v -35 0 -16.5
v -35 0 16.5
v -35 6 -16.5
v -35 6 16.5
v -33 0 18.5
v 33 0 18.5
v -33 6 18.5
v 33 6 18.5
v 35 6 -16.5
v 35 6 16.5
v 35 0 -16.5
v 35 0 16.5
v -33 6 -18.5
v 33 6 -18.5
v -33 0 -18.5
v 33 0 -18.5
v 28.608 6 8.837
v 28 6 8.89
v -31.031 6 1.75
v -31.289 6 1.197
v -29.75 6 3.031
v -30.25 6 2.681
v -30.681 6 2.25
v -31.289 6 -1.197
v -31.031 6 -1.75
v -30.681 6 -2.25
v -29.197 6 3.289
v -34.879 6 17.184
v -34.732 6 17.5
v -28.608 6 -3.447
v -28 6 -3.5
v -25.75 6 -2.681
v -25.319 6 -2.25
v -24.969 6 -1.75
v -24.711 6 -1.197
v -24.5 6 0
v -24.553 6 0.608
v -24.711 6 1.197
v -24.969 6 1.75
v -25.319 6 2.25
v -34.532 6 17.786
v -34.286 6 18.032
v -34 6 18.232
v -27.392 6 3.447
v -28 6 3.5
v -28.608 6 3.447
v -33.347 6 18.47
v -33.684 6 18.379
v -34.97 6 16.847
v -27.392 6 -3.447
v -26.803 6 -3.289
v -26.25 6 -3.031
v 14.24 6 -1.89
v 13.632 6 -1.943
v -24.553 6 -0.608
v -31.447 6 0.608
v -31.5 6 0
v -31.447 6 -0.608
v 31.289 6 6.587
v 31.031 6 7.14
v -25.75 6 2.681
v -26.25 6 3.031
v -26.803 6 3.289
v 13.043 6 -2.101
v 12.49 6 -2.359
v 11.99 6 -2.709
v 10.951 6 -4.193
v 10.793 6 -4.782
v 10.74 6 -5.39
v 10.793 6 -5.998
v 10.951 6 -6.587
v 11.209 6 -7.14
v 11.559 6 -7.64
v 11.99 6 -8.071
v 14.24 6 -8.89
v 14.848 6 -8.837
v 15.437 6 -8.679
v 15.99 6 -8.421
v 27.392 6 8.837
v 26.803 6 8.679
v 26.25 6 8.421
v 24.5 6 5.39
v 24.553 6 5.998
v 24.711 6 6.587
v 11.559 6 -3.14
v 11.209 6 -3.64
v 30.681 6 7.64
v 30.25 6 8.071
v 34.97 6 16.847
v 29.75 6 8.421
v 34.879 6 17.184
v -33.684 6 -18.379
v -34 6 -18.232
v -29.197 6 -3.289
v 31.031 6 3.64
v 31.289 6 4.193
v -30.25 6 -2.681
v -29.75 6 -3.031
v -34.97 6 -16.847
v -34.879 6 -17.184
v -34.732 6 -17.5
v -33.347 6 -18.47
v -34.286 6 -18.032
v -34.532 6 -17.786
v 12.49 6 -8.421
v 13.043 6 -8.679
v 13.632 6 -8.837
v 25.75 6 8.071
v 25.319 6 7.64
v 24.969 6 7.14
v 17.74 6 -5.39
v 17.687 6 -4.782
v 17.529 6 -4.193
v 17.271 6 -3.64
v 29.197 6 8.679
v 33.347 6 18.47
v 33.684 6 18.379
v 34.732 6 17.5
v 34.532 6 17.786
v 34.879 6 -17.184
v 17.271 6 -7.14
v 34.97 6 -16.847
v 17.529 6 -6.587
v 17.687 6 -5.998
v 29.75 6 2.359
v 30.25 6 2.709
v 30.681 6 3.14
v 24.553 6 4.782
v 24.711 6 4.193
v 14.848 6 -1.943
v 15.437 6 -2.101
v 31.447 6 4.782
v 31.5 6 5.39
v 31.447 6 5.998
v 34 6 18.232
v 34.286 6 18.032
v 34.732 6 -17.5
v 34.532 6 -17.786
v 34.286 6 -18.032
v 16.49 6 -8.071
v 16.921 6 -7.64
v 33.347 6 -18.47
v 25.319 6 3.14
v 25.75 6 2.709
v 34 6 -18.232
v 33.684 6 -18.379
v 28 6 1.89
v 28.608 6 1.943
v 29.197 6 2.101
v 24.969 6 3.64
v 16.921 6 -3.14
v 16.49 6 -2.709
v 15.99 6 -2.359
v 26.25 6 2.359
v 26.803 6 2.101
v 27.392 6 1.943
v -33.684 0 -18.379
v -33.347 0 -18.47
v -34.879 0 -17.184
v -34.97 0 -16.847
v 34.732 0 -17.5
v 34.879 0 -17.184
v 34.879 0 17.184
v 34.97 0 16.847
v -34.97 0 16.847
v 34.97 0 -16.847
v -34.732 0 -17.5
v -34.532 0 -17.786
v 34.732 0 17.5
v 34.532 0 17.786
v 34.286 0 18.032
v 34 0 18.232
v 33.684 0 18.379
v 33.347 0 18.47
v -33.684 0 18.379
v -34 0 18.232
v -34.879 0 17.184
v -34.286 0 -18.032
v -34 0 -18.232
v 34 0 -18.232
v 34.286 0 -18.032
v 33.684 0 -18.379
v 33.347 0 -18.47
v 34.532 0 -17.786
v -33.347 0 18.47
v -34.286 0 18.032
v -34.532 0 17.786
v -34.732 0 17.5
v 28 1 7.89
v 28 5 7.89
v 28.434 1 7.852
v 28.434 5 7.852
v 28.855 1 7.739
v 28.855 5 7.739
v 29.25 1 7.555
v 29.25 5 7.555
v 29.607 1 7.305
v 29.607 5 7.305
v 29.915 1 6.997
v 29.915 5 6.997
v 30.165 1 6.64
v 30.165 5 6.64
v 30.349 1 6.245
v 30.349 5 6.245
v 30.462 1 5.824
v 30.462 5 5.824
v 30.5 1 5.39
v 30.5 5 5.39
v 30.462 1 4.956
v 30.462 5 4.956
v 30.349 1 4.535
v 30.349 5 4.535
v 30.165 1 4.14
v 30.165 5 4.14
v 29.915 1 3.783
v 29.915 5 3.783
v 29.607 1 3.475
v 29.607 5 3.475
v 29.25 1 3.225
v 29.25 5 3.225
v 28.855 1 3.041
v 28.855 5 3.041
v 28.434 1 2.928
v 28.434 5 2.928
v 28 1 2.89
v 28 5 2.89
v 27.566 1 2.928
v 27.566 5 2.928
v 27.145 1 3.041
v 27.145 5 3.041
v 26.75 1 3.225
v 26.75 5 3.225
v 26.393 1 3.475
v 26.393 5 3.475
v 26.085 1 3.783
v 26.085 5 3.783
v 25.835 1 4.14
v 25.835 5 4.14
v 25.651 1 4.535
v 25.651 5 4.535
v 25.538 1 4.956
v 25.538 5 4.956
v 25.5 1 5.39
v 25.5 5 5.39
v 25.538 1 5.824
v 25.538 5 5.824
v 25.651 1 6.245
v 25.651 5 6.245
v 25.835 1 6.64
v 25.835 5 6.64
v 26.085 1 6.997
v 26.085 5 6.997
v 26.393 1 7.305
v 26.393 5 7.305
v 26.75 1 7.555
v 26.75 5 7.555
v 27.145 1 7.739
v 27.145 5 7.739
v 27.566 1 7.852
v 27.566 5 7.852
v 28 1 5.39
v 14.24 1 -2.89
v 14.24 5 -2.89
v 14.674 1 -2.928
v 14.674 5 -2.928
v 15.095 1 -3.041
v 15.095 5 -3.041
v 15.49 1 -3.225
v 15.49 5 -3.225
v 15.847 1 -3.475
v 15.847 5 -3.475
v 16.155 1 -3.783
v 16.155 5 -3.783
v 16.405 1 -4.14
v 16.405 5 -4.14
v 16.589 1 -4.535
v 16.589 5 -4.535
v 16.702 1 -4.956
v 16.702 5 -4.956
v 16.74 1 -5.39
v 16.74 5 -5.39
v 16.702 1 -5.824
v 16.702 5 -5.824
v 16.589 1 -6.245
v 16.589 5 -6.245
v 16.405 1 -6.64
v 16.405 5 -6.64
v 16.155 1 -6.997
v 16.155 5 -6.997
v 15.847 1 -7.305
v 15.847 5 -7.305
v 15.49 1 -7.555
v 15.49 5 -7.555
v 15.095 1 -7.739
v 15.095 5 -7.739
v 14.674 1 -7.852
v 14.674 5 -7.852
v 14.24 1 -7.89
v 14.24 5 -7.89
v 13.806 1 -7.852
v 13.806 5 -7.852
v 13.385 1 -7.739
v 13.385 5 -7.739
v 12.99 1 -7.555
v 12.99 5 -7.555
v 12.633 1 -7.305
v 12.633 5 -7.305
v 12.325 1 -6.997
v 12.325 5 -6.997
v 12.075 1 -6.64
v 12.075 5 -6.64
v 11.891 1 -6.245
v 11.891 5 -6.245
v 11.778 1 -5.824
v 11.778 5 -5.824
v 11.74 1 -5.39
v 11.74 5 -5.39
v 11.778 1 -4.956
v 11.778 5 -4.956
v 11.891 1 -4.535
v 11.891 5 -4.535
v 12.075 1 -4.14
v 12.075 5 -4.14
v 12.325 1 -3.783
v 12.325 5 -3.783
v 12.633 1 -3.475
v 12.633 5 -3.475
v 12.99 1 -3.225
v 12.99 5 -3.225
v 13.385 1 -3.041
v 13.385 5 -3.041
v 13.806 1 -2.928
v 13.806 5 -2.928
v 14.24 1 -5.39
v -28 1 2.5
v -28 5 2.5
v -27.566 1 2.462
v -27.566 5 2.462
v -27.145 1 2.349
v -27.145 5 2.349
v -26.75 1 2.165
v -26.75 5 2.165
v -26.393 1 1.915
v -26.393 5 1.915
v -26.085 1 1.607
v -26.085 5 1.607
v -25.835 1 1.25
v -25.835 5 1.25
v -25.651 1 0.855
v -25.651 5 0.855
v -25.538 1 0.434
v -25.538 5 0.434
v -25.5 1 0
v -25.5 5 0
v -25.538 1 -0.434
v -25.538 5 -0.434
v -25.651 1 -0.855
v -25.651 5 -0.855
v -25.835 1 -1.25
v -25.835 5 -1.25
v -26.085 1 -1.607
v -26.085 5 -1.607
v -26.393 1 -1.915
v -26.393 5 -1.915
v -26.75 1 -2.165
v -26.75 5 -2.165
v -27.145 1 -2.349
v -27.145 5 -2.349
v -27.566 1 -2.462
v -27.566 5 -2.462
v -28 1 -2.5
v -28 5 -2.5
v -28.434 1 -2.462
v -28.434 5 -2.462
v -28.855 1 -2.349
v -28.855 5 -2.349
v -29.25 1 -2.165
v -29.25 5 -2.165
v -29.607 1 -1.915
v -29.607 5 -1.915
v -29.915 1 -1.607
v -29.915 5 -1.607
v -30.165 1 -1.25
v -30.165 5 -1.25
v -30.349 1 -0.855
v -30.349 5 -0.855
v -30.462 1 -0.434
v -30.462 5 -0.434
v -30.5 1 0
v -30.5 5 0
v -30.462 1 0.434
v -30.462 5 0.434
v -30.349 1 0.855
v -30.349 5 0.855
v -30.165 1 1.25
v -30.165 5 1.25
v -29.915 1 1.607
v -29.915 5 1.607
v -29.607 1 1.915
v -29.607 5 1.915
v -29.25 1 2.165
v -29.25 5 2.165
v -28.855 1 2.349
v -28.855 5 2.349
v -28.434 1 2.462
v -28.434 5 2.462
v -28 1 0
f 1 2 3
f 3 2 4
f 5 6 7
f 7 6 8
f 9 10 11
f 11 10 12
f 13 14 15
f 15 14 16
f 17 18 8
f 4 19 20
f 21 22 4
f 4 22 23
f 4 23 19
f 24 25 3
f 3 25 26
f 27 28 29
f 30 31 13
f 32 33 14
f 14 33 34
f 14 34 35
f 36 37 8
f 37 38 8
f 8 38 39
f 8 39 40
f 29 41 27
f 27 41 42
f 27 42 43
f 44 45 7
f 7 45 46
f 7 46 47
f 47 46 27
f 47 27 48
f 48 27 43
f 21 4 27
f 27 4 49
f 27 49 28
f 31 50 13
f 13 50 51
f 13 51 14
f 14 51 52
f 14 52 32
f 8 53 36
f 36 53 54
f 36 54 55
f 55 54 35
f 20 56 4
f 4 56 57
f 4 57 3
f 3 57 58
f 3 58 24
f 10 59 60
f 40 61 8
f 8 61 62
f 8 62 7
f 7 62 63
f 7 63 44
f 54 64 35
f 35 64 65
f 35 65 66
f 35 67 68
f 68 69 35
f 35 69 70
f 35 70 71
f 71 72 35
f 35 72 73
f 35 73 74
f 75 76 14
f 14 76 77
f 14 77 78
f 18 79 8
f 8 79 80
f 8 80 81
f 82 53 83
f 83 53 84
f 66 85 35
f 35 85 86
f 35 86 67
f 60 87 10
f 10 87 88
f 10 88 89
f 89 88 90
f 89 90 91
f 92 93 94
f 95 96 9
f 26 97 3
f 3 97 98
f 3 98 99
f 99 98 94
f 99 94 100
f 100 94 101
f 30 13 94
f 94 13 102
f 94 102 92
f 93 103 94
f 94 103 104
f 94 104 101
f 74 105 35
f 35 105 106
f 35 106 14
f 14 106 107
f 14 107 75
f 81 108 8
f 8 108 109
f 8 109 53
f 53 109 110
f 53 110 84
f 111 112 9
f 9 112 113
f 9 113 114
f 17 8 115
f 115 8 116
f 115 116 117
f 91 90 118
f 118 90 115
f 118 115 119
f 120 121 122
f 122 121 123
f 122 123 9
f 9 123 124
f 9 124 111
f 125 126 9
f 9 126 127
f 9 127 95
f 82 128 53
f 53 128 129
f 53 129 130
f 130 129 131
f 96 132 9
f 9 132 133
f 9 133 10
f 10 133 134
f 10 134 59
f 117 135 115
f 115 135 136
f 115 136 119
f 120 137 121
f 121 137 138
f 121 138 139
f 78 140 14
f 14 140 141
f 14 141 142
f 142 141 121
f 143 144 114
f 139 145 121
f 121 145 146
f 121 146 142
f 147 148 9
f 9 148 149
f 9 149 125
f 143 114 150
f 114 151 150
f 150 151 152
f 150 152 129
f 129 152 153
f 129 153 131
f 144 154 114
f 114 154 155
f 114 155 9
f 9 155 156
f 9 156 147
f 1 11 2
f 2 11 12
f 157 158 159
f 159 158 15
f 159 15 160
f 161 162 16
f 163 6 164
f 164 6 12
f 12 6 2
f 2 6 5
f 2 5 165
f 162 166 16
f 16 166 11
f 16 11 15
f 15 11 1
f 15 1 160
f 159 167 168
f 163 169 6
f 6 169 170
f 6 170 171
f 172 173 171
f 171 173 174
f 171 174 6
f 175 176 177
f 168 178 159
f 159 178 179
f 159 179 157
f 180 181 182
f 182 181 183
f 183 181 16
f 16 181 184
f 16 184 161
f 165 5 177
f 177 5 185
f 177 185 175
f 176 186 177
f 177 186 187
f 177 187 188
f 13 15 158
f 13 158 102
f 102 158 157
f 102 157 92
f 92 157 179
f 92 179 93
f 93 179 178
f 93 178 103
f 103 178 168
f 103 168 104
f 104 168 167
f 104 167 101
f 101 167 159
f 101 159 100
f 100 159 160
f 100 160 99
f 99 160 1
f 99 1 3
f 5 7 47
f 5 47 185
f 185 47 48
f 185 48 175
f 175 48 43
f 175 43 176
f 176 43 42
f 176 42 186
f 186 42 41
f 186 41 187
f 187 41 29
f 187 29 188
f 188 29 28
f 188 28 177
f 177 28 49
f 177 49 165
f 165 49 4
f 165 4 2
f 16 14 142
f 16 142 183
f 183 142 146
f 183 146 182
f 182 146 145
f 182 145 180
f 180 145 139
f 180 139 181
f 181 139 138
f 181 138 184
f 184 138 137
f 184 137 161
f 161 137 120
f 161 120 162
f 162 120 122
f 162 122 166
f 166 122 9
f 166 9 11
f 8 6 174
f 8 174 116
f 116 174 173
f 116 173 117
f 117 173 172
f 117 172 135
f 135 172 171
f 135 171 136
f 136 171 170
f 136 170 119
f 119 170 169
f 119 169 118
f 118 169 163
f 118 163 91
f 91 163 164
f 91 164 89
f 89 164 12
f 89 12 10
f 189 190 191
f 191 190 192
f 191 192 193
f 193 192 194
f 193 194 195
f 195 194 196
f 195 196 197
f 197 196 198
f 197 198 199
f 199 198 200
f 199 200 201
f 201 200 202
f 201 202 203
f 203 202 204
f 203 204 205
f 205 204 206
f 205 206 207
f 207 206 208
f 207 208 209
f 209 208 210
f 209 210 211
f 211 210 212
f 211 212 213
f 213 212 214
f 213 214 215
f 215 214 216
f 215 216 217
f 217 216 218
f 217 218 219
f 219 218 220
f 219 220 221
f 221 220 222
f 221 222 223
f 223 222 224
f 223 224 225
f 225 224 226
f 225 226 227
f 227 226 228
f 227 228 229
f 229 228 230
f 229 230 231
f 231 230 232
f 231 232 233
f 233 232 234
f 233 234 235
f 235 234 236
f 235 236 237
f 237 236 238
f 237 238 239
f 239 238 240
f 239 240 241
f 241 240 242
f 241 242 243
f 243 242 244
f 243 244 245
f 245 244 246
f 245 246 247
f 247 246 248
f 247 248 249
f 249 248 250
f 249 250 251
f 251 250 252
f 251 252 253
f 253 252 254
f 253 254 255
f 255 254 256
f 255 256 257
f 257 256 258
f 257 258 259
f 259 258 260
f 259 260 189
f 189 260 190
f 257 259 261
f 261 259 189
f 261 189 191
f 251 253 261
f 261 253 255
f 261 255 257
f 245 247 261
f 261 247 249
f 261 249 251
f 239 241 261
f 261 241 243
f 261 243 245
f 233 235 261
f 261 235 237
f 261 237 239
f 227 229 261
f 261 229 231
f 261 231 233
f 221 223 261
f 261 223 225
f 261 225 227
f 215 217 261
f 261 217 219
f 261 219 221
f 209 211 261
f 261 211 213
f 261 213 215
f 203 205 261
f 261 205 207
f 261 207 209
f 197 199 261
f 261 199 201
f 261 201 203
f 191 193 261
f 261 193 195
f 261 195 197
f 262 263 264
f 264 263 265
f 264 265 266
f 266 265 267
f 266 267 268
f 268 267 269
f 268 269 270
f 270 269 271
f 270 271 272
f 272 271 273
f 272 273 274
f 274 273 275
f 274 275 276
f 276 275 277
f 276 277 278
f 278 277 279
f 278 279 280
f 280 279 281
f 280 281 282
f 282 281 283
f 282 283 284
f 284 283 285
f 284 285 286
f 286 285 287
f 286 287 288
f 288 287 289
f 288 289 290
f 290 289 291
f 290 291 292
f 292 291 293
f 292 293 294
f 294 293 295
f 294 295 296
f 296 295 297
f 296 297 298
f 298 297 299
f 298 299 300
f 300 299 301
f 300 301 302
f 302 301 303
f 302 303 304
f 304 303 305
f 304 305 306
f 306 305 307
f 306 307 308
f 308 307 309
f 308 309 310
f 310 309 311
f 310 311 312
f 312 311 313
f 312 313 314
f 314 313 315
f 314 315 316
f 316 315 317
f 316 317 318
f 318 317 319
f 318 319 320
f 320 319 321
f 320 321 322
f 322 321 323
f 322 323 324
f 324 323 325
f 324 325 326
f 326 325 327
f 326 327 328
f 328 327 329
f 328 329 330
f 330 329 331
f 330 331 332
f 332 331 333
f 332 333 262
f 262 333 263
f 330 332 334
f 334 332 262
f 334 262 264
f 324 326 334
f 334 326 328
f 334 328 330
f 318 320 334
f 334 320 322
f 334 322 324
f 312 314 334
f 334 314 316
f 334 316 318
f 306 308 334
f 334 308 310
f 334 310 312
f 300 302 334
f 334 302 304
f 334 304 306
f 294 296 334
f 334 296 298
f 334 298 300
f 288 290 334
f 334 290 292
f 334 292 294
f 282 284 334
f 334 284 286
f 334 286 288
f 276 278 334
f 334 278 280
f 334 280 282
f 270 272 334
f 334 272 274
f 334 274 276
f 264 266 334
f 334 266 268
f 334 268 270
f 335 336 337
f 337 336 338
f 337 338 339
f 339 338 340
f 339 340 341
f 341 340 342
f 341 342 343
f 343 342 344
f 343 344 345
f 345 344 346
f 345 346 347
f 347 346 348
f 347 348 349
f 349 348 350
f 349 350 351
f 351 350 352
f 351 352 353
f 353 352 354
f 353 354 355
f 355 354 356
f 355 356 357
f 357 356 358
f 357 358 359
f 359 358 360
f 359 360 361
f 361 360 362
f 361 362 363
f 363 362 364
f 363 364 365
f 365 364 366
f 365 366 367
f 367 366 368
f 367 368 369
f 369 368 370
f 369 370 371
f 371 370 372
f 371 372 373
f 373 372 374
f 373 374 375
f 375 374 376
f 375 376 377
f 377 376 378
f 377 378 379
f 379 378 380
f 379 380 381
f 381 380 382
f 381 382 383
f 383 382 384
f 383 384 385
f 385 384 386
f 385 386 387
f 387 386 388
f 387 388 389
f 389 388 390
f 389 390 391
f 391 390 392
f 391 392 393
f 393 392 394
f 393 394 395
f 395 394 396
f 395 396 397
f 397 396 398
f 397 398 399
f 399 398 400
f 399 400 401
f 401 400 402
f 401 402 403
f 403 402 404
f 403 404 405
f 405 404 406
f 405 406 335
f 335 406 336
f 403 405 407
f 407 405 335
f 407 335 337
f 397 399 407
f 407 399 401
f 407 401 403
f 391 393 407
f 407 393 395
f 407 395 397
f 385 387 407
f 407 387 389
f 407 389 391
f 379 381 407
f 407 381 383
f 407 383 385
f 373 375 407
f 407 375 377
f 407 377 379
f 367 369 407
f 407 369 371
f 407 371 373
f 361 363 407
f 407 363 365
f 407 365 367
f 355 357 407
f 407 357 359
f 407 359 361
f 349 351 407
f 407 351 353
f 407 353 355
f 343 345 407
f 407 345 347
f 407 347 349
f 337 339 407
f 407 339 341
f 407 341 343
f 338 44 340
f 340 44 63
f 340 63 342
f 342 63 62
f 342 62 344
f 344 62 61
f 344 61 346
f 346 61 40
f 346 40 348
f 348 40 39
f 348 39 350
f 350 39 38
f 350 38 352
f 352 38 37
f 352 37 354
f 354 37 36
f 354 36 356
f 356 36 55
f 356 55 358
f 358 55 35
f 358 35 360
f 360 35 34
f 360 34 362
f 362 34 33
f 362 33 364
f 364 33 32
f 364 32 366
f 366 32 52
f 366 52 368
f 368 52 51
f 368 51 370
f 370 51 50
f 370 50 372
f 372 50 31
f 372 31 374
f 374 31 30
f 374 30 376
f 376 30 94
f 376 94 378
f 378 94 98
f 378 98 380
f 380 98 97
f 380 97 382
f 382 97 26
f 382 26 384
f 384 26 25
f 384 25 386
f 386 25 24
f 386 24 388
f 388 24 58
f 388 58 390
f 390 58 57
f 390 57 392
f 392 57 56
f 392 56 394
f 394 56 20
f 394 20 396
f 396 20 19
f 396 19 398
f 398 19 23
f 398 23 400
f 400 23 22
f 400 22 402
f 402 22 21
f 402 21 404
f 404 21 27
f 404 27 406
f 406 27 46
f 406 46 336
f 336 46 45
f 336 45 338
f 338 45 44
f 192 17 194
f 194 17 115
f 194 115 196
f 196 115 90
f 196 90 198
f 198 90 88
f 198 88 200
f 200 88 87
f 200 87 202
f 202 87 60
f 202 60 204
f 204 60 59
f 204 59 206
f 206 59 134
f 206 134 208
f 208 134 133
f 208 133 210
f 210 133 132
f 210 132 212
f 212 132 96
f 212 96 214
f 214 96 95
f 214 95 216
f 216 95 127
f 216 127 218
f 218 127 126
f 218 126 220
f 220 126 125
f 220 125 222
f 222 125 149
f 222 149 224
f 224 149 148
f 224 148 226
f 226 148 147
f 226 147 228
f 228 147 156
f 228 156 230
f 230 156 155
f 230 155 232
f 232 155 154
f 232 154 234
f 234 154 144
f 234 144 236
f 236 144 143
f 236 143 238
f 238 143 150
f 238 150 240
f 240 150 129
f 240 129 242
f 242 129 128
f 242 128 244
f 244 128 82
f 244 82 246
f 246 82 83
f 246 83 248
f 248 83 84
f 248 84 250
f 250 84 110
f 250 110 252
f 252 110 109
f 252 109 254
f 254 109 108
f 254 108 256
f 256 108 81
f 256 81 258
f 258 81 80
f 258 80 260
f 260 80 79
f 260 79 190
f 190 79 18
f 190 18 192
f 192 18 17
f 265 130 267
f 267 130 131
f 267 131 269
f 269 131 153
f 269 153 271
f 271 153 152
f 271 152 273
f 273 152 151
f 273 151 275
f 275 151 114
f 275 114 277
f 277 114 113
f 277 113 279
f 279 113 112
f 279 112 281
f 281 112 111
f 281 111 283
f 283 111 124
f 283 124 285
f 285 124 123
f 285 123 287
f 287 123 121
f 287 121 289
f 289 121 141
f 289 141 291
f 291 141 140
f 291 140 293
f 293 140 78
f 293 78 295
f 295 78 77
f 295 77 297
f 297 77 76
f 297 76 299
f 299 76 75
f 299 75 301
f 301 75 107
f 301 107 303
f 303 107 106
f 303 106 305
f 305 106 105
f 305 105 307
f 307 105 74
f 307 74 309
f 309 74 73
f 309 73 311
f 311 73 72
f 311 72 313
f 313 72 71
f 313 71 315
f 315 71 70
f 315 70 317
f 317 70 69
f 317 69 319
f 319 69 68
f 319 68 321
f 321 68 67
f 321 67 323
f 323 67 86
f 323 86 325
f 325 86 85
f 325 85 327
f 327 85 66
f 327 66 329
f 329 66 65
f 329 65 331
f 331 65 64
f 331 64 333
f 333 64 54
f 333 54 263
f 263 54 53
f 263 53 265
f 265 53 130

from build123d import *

# Parameters (mm, degrees)
SKETCH3_W           = 70
SKETCH3_H           = 37
BOSS_EXTRUDE1_DEPTH = 6
FILLET1_R           = 2
SKETCH4_R           = 2.5
CUT_EXTRUDE1_DEPTH  = 5
SKETCH4_3_R         = 2.5
CUT_EXTRUDE2_DEPTH  = 5
SKETCH4_5_R         = 2.5
CUT_EXTRUDE3_DEPTH  = 5
CHAMFER1_SIZE       = 1


with BuildPart() as part:
    # Sketch3 → Boss-Extrude1 (new body)
    with BuildSketch(Plane(origin=(0, 0, 0), x_dir=(1, 0, 0), z_dir=(0, 1, 0))):
        Rectangle(SKETCH3_W, SKETCH3_H)
    extrude(amount=BOSS_EXTRUDE1_DEPTH)

    # Fillet1
    fillet1_edges = [part.edges().sort_by_distance(p)[0] for p in [
        (35, 3, 18.5),
        (-35, 3, -18.5),
        (-35, 3, 18.5),
        (35, 3, -18.5),
    ]]
    fillet(fillet1_edges, radius=FILLET1_R)

    # Sketch4 → Cut-Extrude1 (cut)
    with BuildSketch(Plane(origin=(0, 6, 0), x_dir=(1, 0, 0), z_dir=(0, 1, 0))):
        with Locations((28, -5.39)):
            Circle(SKETCH4_R)
    extrude(amount=-CUT_EXTRUDE1_DEPTH, mode=Mode.SUBTRACT)

    # Sketch4<3> → Cut-Extrude2 (cut)
    with BuildSketch(Plane(origin=(0, 6, 0), x_dir=(1, 0, 0), z_dir=(0, 1, 0))):
        with Locations((14.24, 5.39)):
            Circle(SKETCH4_3_R)
    extrude(amount=-CUT_EXTRUDE2_DEPTH, mode=Mode.SUBTRACT)

    # Sketch4<5> → Cut-Extrude3 (cut)
    with BuildSketch(Plane(origin=(0, 6, 0), x_dir=(1, 0, 0), z_dir=(0, 1, 0))):
        with Locations((-28, 0)):
            Circle(SKETCH4_5_R)
    extrude(amount=-CUT_EXTRUDE3_DEPTH, mode=Mode.SUBTRACT)

    # Chamfer1
    chamfer1_edges = [part.edges().sort_by_distance(p)[0] for p in [
        (11.74, 6, -5.39),
        (-30.5, 6, 0),
        (25.5, 6, 5.39),
    ]]
    chamfer(chamfer1_edges, length=CHAMFER1_SIZE)


solid = part.part
